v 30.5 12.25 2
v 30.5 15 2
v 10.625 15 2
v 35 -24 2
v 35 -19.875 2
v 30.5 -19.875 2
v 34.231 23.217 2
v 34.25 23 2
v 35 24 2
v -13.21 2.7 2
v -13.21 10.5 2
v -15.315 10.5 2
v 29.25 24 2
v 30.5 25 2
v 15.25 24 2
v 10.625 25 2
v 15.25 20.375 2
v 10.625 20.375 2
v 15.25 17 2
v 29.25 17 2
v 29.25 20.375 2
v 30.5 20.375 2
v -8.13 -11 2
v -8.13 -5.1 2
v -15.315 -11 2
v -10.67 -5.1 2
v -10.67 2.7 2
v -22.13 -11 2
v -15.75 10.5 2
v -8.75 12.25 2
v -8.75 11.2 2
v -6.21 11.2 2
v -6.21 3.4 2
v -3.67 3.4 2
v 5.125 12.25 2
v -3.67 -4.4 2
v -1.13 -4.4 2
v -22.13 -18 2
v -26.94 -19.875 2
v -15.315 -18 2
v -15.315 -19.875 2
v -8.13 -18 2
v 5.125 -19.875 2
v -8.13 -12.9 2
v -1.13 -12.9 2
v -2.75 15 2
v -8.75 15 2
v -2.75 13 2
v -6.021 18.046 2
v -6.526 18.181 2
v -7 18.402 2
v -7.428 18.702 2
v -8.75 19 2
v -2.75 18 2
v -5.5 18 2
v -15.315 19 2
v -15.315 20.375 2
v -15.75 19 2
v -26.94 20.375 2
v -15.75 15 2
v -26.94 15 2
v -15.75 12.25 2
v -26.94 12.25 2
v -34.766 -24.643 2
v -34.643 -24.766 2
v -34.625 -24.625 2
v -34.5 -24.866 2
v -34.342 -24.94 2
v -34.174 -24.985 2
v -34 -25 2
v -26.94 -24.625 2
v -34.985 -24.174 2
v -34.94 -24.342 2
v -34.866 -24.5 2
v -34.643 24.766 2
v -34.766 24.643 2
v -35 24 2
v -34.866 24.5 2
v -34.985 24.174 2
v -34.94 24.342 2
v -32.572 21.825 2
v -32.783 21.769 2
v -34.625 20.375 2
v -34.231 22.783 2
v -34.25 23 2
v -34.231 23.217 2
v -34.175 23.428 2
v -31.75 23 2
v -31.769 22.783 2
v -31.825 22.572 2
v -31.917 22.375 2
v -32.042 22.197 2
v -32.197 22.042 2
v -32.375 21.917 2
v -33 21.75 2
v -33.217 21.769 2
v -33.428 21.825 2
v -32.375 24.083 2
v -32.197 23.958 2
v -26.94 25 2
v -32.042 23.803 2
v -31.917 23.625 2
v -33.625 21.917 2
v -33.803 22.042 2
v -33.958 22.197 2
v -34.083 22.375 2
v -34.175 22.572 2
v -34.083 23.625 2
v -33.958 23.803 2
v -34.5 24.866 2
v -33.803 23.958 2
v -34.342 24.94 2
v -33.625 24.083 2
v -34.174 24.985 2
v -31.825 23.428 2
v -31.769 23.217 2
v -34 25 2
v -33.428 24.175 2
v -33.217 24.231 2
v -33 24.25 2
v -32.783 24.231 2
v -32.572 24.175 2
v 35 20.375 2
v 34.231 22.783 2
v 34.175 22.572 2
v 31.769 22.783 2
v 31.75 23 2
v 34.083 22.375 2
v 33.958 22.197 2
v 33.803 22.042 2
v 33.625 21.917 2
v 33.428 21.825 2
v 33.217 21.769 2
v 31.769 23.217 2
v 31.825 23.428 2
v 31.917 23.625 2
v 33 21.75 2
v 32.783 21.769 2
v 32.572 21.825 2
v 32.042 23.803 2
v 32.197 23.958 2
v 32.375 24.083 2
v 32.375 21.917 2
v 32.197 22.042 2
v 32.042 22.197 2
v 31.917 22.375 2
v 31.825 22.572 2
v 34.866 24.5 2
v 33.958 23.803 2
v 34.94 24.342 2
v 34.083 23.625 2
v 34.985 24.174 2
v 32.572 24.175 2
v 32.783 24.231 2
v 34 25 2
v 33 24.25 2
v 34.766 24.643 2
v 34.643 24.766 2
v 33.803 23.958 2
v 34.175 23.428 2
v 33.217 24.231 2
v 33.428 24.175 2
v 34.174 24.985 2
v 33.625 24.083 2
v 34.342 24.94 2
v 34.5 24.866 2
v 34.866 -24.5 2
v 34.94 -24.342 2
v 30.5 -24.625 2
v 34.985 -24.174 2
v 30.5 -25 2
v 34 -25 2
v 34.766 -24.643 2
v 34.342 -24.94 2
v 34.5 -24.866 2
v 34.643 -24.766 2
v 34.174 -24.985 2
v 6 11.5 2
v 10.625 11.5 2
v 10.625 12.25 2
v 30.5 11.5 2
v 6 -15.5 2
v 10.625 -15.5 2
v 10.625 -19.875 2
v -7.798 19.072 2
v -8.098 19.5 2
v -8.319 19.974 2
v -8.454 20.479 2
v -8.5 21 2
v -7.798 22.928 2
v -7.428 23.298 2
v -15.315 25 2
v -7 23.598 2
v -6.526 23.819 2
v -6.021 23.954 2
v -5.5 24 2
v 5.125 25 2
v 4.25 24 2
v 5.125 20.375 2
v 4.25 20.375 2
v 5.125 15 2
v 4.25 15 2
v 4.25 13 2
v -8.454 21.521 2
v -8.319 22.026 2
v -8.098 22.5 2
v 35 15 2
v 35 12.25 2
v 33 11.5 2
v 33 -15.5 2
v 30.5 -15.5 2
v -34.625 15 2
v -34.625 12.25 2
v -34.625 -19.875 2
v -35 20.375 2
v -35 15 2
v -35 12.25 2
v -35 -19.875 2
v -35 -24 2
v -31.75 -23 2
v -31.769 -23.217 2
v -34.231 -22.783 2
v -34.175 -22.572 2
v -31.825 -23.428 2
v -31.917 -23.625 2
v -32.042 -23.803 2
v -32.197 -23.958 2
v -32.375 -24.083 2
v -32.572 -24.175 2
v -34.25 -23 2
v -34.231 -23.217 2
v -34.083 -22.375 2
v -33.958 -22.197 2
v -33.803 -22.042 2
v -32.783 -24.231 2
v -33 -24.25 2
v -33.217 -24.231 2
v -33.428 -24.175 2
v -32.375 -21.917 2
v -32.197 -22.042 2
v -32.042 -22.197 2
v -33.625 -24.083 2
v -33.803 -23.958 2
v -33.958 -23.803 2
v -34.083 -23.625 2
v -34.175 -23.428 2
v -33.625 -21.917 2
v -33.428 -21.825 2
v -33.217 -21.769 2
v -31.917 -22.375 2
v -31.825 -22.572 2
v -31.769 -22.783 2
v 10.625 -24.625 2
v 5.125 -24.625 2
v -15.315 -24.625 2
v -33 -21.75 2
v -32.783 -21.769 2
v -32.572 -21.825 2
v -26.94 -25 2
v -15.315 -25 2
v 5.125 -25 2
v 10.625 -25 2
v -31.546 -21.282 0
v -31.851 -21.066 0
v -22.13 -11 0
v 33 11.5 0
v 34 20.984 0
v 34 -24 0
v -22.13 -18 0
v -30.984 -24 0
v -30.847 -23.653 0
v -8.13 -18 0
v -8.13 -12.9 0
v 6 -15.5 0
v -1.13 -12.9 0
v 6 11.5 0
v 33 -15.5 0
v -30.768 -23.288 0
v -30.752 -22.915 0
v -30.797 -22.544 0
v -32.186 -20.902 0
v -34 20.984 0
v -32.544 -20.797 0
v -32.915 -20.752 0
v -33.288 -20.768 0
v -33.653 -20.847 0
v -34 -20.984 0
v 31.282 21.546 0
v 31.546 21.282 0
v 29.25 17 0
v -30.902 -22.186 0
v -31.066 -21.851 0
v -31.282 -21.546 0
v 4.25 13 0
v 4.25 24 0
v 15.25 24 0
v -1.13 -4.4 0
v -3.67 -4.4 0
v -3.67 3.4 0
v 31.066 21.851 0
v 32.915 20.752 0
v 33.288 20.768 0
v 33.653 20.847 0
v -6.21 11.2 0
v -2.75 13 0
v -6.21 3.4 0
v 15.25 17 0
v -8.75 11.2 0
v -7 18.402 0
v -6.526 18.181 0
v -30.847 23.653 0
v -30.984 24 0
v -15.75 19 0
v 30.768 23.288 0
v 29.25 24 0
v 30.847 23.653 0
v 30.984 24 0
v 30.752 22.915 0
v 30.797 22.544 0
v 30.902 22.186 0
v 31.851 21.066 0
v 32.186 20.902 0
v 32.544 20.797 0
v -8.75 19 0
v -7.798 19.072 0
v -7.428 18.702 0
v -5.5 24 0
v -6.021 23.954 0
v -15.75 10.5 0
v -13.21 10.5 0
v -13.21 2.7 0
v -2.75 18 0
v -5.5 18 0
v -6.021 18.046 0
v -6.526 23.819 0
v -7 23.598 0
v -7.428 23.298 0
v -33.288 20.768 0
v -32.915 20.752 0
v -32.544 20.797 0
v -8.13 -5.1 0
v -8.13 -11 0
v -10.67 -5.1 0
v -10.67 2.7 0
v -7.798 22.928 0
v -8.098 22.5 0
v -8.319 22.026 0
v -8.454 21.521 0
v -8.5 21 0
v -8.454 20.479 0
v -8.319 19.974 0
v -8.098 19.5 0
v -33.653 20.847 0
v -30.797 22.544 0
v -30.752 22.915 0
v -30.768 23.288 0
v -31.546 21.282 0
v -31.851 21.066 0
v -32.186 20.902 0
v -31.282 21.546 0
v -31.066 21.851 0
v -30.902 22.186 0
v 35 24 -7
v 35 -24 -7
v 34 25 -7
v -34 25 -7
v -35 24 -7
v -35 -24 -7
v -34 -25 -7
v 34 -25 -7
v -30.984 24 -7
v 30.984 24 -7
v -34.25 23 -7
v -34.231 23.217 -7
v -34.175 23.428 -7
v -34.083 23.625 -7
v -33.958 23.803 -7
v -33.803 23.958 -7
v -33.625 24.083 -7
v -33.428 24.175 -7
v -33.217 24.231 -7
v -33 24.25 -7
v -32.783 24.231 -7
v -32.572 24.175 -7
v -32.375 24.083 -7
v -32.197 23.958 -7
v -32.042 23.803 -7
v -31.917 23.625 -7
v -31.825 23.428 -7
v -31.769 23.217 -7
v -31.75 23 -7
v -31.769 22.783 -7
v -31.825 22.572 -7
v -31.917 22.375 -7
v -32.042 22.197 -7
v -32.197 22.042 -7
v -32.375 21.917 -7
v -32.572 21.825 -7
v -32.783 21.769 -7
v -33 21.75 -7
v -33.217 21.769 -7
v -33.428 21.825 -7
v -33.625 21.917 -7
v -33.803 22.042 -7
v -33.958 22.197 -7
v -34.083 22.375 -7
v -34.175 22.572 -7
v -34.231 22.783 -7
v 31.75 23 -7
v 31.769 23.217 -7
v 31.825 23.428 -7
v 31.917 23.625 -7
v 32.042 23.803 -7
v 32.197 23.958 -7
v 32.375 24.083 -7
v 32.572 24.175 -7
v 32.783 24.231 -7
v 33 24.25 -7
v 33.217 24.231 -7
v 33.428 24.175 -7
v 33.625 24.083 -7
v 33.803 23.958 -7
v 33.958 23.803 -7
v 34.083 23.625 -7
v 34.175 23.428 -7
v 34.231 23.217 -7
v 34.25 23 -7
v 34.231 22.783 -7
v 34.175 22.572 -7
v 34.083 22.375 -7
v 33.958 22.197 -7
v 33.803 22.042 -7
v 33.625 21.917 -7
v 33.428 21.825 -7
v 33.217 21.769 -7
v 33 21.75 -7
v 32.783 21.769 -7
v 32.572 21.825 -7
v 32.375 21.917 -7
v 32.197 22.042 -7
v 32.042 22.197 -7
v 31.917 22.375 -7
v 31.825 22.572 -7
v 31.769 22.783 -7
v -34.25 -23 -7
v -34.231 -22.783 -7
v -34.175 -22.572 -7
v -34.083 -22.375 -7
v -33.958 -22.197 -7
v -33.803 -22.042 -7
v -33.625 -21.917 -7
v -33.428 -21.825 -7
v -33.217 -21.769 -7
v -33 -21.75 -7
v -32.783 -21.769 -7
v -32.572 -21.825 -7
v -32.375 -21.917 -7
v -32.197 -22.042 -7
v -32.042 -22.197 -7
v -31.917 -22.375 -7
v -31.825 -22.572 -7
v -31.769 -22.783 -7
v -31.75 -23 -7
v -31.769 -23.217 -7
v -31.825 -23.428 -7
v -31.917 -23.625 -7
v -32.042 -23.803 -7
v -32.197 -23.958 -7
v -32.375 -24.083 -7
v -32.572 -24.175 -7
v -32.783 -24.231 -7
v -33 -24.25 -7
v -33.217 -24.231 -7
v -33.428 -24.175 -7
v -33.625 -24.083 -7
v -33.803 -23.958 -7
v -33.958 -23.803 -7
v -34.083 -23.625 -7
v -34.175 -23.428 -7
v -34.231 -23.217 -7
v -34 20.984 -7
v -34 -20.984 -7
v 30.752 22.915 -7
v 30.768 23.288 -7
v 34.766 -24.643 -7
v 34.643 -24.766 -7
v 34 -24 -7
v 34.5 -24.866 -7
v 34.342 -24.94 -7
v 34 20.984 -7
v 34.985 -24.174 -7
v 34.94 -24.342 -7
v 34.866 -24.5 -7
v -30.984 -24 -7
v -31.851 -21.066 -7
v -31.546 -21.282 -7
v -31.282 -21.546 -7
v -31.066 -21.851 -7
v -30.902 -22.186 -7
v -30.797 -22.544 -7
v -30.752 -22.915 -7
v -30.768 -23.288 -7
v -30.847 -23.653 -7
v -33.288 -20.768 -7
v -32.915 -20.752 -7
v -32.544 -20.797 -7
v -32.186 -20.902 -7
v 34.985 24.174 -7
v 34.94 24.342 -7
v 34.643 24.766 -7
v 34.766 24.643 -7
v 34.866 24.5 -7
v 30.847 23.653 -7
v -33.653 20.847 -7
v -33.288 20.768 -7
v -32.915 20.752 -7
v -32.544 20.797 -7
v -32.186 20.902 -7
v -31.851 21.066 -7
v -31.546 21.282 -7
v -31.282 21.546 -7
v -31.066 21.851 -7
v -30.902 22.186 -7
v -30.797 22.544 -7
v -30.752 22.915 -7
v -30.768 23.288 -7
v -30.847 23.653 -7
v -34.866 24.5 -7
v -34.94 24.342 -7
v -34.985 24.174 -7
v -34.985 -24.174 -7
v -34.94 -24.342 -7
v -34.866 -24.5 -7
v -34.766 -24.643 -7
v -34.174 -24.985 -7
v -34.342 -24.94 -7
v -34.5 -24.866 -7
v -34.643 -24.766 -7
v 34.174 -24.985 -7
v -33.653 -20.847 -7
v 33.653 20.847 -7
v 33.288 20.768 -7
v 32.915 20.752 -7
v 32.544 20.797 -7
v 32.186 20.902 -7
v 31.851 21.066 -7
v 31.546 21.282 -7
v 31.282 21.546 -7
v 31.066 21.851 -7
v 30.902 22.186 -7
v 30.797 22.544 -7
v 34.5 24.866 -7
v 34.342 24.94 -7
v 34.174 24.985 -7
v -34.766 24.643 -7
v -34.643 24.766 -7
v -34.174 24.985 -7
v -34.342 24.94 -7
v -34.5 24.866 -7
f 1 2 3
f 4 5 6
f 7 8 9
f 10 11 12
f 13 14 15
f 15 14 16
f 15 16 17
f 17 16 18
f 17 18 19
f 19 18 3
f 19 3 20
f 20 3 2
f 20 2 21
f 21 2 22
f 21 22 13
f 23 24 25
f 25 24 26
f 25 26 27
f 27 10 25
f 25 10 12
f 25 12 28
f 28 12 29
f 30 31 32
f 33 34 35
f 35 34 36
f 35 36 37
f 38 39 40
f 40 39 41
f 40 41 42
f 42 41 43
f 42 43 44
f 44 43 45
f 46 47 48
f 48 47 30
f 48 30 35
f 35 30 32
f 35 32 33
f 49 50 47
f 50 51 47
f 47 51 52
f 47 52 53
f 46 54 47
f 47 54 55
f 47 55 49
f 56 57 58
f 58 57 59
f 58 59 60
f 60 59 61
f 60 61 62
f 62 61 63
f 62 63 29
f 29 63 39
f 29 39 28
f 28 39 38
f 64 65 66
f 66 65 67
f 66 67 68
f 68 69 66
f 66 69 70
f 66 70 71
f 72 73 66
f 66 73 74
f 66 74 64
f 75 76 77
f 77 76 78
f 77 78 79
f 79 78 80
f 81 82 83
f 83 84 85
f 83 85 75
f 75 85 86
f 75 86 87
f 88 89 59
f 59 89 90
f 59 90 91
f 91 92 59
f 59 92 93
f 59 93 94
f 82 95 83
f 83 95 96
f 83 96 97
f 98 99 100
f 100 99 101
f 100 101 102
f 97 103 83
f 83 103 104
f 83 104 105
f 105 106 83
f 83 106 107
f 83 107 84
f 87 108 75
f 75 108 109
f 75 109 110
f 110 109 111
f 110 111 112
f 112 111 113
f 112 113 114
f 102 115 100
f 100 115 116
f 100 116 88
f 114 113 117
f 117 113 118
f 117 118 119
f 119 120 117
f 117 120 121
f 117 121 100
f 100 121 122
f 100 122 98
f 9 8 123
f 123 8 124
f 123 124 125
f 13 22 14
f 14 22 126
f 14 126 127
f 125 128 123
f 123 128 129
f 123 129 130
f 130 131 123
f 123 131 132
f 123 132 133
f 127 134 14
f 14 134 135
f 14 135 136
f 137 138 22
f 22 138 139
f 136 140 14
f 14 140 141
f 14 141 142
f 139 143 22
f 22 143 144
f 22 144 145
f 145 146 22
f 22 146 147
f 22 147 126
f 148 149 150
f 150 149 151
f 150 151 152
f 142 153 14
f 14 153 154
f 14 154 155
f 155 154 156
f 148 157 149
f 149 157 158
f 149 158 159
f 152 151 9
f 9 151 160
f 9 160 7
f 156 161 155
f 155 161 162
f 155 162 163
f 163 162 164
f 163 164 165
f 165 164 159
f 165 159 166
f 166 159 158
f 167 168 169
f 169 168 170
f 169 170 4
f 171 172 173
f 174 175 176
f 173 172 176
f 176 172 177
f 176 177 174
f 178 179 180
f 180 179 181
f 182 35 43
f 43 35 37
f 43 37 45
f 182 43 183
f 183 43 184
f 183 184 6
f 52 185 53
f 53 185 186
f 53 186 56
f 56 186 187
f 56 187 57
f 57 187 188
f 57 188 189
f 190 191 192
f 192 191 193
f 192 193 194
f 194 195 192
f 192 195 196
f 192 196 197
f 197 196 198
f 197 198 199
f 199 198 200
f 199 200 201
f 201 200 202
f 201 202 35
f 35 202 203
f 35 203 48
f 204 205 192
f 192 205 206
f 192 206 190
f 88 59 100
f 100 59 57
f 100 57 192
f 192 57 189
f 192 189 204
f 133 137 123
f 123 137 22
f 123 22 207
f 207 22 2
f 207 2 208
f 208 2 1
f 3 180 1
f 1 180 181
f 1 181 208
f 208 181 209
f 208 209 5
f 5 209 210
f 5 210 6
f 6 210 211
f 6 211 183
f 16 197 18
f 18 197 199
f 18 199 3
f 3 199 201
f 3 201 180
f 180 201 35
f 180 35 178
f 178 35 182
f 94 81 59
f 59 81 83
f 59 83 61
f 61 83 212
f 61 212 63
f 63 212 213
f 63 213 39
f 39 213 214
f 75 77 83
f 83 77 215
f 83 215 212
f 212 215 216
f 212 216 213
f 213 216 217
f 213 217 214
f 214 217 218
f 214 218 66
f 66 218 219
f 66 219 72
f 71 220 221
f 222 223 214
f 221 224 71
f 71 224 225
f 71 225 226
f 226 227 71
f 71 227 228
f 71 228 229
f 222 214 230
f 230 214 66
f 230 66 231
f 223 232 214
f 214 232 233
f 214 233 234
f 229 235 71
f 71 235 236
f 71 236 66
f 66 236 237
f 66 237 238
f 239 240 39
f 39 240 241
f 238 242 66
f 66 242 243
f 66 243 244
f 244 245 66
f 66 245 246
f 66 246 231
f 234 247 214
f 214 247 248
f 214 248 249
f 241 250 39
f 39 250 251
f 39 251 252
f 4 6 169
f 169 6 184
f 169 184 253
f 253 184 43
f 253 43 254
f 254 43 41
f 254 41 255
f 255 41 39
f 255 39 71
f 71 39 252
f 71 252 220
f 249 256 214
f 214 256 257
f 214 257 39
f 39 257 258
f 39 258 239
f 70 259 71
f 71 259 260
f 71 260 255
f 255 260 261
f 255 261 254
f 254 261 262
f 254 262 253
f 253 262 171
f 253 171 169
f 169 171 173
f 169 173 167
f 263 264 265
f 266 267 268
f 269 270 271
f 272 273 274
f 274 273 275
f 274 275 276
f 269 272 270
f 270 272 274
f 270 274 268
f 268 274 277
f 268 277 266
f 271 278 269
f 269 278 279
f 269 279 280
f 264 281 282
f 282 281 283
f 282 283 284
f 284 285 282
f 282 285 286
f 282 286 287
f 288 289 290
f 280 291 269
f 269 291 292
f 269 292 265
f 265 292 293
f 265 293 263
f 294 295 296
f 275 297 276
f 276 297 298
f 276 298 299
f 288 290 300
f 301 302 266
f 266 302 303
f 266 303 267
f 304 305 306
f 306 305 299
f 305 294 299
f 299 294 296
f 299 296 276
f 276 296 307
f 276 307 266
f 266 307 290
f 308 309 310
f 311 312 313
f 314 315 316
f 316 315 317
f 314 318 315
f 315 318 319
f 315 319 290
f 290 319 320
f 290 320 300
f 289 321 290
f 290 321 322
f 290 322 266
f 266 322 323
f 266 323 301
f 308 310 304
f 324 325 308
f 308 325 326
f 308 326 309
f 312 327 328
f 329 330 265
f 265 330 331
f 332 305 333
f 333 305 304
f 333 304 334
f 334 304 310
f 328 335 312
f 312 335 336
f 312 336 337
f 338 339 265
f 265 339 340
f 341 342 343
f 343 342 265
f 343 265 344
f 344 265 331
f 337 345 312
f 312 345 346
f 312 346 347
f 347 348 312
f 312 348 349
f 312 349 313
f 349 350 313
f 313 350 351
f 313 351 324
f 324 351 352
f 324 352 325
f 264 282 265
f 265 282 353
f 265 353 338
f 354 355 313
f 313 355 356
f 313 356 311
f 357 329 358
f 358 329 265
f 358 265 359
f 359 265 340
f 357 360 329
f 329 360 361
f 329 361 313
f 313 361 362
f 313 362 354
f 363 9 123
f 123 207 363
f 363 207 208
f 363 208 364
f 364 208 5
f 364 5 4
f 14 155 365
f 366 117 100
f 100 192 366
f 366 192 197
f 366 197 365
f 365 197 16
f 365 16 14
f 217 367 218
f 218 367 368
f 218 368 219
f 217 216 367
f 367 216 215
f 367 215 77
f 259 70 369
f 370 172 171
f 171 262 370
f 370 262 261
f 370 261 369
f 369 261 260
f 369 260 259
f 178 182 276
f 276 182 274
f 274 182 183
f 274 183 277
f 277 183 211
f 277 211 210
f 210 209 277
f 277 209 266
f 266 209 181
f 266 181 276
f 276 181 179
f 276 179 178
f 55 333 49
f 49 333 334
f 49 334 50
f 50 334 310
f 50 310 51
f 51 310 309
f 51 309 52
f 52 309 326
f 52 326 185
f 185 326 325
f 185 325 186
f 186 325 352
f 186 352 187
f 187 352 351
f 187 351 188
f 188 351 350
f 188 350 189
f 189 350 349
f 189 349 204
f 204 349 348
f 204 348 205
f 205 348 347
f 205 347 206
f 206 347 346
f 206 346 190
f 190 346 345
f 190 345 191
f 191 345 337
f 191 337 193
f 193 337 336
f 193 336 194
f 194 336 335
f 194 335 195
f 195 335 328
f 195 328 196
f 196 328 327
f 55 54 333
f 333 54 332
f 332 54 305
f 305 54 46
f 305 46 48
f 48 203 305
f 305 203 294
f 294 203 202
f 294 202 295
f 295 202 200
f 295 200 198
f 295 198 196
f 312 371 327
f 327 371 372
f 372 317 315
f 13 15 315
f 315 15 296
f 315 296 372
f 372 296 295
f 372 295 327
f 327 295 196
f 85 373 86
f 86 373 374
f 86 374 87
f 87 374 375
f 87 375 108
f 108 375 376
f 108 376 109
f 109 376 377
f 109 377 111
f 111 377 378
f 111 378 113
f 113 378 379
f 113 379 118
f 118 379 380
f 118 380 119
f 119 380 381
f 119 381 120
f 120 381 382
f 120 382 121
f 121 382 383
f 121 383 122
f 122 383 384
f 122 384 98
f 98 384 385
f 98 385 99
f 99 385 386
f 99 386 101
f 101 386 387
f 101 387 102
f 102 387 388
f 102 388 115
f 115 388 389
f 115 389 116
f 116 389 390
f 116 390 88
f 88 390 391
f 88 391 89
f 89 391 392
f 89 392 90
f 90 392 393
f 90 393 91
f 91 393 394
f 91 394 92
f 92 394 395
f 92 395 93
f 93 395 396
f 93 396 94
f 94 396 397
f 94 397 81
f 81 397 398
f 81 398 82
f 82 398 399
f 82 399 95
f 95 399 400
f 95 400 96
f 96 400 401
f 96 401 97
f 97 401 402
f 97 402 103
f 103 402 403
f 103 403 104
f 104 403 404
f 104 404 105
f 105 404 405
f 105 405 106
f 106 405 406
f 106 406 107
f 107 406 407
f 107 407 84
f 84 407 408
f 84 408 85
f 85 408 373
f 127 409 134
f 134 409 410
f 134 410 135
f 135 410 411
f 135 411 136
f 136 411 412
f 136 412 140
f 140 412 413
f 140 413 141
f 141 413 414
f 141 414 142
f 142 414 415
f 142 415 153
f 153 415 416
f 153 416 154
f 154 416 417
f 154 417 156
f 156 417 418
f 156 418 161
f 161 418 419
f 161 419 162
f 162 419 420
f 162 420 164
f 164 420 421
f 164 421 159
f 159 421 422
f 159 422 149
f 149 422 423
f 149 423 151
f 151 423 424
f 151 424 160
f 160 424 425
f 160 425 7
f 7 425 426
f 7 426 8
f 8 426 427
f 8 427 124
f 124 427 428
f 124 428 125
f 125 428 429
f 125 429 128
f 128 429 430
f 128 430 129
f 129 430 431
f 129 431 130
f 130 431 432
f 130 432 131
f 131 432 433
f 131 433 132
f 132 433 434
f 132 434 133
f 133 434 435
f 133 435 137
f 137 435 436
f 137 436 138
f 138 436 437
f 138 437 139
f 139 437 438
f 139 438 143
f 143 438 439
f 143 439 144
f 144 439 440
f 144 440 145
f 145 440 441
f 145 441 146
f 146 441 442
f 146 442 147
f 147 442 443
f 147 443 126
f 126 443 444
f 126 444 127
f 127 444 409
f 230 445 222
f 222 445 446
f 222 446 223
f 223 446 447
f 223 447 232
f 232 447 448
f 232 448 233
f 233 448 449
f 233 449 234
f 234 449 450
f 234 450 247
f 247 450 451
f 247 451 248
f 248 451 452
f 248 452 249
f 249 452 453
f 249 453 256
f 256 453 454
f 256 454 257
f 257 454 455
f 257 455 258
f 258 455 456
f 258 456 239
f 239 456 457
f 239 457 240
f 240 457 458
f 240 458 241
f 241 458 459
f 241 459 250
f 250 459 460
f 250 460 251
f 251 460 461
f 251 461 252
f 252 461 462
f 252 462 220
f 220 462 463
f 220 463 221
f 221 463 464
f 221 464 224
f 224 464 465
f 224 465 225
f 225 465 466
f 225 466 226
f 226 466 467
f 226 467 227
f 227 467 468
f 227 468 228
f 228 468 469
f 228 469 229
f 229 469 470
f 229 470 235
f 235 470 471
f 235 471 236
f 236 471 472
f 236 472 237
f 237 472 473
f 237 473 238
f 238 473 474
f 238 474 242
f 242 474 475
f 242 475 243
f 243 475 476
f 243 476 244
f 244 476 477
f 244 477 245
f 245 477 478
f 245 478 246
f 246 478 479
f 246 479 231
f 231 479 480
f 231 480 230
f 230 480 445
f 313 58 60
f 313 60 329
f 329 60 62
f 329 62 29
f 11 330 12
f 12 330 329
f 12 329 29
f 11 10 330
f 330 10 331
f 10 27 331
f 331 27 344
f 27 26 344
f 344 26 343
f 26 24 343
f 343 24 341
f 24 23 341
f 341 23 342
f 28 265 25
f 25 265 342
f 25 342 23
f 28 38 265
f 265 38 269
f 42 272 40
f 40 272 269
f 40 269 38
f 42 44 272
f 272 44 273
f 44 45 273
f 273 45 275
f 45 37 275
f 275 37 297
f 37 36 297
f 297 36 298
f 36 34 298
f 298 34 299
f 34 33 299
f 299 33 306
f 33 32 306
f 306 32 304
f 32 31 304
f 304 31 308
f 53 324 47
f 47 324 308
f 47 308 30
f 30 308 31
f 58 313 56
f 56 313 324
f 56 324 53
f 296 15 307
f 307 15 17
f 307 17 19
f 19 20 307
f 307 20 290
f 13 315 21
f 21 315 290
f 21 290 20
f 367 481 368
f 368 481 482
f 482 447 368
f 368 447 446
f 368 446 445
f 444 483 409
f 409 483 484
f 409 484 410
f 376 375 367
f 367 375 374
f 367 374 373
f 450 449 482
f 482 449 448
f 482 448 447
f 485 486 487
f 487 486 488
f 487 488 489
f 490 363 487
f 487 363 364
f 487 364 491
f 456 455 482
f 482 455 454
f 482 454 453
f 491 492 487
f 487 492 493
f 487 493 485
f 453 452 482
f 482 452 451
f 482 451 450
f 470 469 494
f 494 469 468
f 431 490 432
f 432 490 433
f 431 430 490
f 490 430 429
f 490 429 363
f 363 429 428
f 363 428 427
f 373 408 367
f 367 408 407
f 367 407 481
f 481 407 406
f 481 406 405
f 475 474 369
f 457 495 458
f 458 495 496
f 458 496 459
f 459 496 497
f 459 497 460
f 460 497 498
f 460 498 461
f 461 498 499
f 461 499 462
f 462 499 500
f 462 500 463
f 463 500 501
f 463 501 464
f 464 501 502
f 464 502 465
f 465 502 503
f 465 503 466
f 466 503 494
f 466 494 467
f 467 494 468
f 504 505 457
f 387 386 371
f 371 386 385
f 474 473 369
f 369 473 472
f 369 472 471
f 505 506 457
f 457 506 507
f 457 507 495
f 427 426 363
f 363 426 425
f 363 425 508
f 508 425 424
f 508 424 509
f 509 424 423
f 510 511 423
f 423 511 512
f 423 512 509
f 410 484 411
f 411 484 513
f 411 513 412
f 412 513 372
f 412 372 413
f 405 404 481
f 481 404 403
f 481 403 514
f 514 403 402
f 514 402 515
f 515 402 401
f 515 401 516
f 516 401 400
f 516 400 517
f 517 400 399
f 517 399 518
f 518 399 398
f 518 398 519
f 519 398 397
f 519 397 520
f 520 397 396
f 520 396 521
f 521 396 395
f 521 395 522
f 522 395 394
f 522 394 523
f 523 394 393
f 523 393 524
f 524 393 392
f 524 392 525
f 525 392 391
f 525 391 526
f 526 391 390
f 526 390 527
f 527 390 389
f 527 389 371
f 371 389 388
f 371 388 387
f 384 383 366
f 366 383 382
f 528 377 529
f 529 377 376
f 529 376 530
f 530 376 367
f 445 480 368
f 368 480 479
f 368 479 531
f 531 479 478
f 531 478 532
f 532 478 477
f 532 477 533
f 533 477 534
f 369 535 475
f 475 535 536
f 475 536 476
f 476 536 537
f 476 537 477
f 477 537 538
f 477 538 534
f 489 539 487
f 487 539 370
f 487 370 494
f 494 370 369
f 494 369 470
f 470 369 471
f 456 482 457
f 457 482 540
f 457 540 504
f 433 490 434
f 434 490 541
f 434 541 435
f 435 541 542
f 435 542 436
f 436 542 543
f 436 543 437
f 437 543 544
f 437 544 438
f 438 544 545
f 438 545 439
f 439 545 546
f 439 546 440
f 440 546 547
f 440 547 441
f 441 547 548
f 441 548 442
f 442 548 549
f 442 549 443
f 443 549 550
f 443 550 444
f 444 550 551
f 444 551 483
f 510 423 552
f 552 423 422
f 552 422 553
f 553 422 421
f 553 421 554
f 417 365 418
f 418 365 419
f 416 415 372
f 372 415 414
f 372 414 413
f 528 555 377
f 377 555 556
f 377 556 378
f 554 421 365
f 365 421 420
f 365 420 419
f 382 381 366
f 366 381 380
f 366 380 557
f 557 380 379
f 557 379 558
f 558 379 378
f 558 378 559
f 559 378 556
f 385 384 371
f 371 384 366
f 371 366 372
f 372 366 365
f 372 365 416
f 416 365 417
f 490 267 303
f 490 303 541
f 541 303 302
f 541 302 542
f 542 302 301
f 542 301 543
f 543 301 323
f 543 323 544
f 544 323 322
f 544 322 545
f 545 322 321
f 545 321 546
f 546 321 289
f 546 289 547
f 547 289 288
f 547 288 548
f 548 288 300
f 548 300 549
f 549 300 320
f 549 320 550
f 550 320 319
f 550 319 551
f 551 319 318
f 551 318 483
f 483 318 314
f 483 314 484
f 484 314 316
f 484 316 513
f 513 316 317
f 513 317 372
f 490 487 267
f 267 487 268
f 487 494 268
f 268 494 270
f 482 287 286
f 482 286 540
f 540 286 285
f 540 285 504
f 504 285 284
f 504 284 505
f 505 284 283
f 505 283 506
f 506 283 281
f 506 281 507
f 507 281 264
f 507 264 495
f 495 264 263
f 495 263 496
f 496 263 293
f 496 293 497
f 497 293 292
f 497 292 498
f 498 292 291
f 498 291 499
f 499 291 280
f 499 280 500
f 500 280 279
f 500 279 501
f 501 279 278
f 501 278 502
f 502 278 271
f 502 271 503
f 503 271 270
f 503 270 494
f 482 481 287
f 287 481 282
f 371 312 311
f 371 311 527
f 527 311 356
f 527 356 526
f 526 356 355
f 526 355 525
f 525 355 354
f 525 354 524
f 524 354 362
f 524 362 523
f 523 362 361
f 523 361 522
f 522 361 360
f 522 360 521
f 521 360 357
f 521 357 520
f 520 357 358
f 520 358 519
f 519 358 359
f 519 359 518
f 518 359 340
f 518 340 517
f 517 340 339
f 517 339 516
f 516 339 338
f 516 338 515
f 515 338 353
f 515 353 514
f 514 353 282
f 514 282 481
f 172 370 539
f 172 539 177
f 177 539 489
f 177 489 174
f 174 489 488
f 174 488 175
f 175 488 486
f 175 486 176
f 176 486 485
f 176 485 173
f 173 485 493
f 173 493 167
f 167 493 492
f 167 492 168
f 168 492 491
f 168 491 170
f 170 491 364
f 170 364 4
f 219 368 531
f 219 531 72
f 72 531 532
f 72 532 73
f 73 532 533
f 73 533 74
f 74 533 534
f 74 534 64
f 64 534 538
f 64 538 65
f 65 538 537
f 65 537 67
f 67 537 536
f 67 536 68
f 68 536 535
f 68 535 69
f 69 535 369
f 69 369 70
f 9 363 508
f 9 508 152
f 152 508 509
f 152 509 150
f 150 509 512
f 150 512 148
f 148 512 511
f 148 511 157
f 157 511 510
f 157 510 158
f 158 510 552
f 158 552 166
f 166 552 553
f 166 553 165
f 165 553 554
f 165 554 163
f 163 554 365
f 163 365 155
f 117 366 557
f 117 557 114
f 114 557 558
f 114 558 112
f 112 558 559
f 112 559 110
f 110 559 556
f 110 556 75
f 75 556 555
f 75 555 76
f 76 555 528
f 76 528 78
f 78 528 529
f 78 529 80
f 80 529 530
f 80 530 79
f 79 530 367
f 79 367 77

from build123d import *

# Parameters (mm, degrees)
SKETCH2_W           = 70
SKETCH2_H           = 50
SKETCH2_R           = 1.25
SKETCH2_W_2         = 27
SKETCH2_H_2         = 27
SKETCH2_W_3         = 14
SKETCH2_H_3         = 7
BOSS_EXTRUDE1_DEPTH = 2
SKETCH4_W           = 70
SKETCH4_H           = 50
SKETCH4_R           = 1.25
BOSS_EXTRUDE2_DEPTH = 7
FILLET1_R           = 1


with BuildPart() as part:
    # Sketch2 → Boss-Extrude1 (new body)
    with BuildSketch(Plane.XY):
        Rectangle(SKETCH2_W, SKETCH2_H)
        with Locations((-33, 23)):
            Circle(SKETCH2_R, mode=Mode.SUBTRACT)
        with Locations((33, 23)):
            Circle(SKETCH2_R, mode=Mode.SUBTRACT)
        with Locations((-33, -23)):
            Circle(SKETCH2_R, mode=Mode.SUBTRACT)
        with Locations((19.5, -2)):
            Rectangle(SKETCH2_W_2, SKETCH2_H_2, mode=Mode.SUBTRACT)
        Polygon((-22.13, -11), (-8.13, -11), (-8.13, -5.1), (-10.67, -5.1), (-10.67, 2.7), (-13.21, 2.7), (-13.21, 10.5), (-15.75, 10.5), (-15.75, 19), (-8.75, 19), (-8.75, 11.2), (-6.21, 11.2), (-6.21, 3.4), (-3.67, 3.4), (-3.67, -4.4), (-1.13, -4.4), (-1.13, -12.9), (-8.13, -12.9), (-8.13, -18), (-22.13, -18), align=None, mode=Mode.SUBTRACT)
        with BuildLine():
            Line((-2.75, 24), (4.25, 24))
            Line((4.25, 24), (4.25, 13))
            Line((4.25, 13), (-2.75, 13))
            Line((-2.75, 13), (-2.75, 18))
            Line((-2.75, 18), (-5.5, 18))
            ThreePointArc((-5.5, 18), (-8.5, 21), (-5.5, 24))
            Line((-5.5, 24), (-2.75, 24))
        make_face(mode=Mode.SUBTRACT)
        with Locations((22.25, 20.5)):
            Rectangle(SKETCH2_W_3, SKETCH2_H_3, mode=Mode.SUBTRACT)
    extrude(amount=BOSS_EXTRUDE1_DEPTH)

    # Sketch4 → Boss-Extrude2 (add)
    with BuildSketch(Plane(origin=(0, 0, 0), x_dir=(-1, 0, 0), z_dir=(0, 0, -1))):
        Rectangle(SKETCH4_W, SKETCH4_H)
        with Locations((-33, 23)):
            Circle(SKETCH4_R, mode=Mode.SUBTRACT)
        with Locations((33, 23)):
            Circle(SKETCH4_R, mode=Mode.SUBTRACT)
        with Locations((33, -23)):
            Circle(SKETCH4_R, mode=Mode.SUBTRACT)
        with BuildLine():
            Line((-30.984435563, 24), (30.984435563, 24))
            ThreePointArc((30.984435563, 24), (31.409009742, 21.409009742), (34, 20.984435563))
            Line((34, 20.984435563), (34, -20.984435563))
            ThreePointArc((34, -20.984435563), (31.409009742, -21.409009742), (30.984435563, -24))
            Line((30.984435563, -24), (-34, -24))
            Line((-34, -24), (-34, 20.984435563))
            ThreePointArc((-34, 20.984435563), (-31.409009742, 21.409009742), (-30.984435563, 24))
        make_face(mode=Mode.SUBTRACT)
    extrude(amount=BOSS_EXTRUDE2_DEPTH)

    # Fillet1
    fillet1_edges = [part.edges().sort_by_distance(p)[0] for p in [
        (35, -25, -2.5),
        (-35, -25, -2.5),
        (-35, 25, -2.5),
        (35, 25, -2.5),
    ]]
    fillet(fillet1_edges, radius=FILLET1_R)


solid = part.part
